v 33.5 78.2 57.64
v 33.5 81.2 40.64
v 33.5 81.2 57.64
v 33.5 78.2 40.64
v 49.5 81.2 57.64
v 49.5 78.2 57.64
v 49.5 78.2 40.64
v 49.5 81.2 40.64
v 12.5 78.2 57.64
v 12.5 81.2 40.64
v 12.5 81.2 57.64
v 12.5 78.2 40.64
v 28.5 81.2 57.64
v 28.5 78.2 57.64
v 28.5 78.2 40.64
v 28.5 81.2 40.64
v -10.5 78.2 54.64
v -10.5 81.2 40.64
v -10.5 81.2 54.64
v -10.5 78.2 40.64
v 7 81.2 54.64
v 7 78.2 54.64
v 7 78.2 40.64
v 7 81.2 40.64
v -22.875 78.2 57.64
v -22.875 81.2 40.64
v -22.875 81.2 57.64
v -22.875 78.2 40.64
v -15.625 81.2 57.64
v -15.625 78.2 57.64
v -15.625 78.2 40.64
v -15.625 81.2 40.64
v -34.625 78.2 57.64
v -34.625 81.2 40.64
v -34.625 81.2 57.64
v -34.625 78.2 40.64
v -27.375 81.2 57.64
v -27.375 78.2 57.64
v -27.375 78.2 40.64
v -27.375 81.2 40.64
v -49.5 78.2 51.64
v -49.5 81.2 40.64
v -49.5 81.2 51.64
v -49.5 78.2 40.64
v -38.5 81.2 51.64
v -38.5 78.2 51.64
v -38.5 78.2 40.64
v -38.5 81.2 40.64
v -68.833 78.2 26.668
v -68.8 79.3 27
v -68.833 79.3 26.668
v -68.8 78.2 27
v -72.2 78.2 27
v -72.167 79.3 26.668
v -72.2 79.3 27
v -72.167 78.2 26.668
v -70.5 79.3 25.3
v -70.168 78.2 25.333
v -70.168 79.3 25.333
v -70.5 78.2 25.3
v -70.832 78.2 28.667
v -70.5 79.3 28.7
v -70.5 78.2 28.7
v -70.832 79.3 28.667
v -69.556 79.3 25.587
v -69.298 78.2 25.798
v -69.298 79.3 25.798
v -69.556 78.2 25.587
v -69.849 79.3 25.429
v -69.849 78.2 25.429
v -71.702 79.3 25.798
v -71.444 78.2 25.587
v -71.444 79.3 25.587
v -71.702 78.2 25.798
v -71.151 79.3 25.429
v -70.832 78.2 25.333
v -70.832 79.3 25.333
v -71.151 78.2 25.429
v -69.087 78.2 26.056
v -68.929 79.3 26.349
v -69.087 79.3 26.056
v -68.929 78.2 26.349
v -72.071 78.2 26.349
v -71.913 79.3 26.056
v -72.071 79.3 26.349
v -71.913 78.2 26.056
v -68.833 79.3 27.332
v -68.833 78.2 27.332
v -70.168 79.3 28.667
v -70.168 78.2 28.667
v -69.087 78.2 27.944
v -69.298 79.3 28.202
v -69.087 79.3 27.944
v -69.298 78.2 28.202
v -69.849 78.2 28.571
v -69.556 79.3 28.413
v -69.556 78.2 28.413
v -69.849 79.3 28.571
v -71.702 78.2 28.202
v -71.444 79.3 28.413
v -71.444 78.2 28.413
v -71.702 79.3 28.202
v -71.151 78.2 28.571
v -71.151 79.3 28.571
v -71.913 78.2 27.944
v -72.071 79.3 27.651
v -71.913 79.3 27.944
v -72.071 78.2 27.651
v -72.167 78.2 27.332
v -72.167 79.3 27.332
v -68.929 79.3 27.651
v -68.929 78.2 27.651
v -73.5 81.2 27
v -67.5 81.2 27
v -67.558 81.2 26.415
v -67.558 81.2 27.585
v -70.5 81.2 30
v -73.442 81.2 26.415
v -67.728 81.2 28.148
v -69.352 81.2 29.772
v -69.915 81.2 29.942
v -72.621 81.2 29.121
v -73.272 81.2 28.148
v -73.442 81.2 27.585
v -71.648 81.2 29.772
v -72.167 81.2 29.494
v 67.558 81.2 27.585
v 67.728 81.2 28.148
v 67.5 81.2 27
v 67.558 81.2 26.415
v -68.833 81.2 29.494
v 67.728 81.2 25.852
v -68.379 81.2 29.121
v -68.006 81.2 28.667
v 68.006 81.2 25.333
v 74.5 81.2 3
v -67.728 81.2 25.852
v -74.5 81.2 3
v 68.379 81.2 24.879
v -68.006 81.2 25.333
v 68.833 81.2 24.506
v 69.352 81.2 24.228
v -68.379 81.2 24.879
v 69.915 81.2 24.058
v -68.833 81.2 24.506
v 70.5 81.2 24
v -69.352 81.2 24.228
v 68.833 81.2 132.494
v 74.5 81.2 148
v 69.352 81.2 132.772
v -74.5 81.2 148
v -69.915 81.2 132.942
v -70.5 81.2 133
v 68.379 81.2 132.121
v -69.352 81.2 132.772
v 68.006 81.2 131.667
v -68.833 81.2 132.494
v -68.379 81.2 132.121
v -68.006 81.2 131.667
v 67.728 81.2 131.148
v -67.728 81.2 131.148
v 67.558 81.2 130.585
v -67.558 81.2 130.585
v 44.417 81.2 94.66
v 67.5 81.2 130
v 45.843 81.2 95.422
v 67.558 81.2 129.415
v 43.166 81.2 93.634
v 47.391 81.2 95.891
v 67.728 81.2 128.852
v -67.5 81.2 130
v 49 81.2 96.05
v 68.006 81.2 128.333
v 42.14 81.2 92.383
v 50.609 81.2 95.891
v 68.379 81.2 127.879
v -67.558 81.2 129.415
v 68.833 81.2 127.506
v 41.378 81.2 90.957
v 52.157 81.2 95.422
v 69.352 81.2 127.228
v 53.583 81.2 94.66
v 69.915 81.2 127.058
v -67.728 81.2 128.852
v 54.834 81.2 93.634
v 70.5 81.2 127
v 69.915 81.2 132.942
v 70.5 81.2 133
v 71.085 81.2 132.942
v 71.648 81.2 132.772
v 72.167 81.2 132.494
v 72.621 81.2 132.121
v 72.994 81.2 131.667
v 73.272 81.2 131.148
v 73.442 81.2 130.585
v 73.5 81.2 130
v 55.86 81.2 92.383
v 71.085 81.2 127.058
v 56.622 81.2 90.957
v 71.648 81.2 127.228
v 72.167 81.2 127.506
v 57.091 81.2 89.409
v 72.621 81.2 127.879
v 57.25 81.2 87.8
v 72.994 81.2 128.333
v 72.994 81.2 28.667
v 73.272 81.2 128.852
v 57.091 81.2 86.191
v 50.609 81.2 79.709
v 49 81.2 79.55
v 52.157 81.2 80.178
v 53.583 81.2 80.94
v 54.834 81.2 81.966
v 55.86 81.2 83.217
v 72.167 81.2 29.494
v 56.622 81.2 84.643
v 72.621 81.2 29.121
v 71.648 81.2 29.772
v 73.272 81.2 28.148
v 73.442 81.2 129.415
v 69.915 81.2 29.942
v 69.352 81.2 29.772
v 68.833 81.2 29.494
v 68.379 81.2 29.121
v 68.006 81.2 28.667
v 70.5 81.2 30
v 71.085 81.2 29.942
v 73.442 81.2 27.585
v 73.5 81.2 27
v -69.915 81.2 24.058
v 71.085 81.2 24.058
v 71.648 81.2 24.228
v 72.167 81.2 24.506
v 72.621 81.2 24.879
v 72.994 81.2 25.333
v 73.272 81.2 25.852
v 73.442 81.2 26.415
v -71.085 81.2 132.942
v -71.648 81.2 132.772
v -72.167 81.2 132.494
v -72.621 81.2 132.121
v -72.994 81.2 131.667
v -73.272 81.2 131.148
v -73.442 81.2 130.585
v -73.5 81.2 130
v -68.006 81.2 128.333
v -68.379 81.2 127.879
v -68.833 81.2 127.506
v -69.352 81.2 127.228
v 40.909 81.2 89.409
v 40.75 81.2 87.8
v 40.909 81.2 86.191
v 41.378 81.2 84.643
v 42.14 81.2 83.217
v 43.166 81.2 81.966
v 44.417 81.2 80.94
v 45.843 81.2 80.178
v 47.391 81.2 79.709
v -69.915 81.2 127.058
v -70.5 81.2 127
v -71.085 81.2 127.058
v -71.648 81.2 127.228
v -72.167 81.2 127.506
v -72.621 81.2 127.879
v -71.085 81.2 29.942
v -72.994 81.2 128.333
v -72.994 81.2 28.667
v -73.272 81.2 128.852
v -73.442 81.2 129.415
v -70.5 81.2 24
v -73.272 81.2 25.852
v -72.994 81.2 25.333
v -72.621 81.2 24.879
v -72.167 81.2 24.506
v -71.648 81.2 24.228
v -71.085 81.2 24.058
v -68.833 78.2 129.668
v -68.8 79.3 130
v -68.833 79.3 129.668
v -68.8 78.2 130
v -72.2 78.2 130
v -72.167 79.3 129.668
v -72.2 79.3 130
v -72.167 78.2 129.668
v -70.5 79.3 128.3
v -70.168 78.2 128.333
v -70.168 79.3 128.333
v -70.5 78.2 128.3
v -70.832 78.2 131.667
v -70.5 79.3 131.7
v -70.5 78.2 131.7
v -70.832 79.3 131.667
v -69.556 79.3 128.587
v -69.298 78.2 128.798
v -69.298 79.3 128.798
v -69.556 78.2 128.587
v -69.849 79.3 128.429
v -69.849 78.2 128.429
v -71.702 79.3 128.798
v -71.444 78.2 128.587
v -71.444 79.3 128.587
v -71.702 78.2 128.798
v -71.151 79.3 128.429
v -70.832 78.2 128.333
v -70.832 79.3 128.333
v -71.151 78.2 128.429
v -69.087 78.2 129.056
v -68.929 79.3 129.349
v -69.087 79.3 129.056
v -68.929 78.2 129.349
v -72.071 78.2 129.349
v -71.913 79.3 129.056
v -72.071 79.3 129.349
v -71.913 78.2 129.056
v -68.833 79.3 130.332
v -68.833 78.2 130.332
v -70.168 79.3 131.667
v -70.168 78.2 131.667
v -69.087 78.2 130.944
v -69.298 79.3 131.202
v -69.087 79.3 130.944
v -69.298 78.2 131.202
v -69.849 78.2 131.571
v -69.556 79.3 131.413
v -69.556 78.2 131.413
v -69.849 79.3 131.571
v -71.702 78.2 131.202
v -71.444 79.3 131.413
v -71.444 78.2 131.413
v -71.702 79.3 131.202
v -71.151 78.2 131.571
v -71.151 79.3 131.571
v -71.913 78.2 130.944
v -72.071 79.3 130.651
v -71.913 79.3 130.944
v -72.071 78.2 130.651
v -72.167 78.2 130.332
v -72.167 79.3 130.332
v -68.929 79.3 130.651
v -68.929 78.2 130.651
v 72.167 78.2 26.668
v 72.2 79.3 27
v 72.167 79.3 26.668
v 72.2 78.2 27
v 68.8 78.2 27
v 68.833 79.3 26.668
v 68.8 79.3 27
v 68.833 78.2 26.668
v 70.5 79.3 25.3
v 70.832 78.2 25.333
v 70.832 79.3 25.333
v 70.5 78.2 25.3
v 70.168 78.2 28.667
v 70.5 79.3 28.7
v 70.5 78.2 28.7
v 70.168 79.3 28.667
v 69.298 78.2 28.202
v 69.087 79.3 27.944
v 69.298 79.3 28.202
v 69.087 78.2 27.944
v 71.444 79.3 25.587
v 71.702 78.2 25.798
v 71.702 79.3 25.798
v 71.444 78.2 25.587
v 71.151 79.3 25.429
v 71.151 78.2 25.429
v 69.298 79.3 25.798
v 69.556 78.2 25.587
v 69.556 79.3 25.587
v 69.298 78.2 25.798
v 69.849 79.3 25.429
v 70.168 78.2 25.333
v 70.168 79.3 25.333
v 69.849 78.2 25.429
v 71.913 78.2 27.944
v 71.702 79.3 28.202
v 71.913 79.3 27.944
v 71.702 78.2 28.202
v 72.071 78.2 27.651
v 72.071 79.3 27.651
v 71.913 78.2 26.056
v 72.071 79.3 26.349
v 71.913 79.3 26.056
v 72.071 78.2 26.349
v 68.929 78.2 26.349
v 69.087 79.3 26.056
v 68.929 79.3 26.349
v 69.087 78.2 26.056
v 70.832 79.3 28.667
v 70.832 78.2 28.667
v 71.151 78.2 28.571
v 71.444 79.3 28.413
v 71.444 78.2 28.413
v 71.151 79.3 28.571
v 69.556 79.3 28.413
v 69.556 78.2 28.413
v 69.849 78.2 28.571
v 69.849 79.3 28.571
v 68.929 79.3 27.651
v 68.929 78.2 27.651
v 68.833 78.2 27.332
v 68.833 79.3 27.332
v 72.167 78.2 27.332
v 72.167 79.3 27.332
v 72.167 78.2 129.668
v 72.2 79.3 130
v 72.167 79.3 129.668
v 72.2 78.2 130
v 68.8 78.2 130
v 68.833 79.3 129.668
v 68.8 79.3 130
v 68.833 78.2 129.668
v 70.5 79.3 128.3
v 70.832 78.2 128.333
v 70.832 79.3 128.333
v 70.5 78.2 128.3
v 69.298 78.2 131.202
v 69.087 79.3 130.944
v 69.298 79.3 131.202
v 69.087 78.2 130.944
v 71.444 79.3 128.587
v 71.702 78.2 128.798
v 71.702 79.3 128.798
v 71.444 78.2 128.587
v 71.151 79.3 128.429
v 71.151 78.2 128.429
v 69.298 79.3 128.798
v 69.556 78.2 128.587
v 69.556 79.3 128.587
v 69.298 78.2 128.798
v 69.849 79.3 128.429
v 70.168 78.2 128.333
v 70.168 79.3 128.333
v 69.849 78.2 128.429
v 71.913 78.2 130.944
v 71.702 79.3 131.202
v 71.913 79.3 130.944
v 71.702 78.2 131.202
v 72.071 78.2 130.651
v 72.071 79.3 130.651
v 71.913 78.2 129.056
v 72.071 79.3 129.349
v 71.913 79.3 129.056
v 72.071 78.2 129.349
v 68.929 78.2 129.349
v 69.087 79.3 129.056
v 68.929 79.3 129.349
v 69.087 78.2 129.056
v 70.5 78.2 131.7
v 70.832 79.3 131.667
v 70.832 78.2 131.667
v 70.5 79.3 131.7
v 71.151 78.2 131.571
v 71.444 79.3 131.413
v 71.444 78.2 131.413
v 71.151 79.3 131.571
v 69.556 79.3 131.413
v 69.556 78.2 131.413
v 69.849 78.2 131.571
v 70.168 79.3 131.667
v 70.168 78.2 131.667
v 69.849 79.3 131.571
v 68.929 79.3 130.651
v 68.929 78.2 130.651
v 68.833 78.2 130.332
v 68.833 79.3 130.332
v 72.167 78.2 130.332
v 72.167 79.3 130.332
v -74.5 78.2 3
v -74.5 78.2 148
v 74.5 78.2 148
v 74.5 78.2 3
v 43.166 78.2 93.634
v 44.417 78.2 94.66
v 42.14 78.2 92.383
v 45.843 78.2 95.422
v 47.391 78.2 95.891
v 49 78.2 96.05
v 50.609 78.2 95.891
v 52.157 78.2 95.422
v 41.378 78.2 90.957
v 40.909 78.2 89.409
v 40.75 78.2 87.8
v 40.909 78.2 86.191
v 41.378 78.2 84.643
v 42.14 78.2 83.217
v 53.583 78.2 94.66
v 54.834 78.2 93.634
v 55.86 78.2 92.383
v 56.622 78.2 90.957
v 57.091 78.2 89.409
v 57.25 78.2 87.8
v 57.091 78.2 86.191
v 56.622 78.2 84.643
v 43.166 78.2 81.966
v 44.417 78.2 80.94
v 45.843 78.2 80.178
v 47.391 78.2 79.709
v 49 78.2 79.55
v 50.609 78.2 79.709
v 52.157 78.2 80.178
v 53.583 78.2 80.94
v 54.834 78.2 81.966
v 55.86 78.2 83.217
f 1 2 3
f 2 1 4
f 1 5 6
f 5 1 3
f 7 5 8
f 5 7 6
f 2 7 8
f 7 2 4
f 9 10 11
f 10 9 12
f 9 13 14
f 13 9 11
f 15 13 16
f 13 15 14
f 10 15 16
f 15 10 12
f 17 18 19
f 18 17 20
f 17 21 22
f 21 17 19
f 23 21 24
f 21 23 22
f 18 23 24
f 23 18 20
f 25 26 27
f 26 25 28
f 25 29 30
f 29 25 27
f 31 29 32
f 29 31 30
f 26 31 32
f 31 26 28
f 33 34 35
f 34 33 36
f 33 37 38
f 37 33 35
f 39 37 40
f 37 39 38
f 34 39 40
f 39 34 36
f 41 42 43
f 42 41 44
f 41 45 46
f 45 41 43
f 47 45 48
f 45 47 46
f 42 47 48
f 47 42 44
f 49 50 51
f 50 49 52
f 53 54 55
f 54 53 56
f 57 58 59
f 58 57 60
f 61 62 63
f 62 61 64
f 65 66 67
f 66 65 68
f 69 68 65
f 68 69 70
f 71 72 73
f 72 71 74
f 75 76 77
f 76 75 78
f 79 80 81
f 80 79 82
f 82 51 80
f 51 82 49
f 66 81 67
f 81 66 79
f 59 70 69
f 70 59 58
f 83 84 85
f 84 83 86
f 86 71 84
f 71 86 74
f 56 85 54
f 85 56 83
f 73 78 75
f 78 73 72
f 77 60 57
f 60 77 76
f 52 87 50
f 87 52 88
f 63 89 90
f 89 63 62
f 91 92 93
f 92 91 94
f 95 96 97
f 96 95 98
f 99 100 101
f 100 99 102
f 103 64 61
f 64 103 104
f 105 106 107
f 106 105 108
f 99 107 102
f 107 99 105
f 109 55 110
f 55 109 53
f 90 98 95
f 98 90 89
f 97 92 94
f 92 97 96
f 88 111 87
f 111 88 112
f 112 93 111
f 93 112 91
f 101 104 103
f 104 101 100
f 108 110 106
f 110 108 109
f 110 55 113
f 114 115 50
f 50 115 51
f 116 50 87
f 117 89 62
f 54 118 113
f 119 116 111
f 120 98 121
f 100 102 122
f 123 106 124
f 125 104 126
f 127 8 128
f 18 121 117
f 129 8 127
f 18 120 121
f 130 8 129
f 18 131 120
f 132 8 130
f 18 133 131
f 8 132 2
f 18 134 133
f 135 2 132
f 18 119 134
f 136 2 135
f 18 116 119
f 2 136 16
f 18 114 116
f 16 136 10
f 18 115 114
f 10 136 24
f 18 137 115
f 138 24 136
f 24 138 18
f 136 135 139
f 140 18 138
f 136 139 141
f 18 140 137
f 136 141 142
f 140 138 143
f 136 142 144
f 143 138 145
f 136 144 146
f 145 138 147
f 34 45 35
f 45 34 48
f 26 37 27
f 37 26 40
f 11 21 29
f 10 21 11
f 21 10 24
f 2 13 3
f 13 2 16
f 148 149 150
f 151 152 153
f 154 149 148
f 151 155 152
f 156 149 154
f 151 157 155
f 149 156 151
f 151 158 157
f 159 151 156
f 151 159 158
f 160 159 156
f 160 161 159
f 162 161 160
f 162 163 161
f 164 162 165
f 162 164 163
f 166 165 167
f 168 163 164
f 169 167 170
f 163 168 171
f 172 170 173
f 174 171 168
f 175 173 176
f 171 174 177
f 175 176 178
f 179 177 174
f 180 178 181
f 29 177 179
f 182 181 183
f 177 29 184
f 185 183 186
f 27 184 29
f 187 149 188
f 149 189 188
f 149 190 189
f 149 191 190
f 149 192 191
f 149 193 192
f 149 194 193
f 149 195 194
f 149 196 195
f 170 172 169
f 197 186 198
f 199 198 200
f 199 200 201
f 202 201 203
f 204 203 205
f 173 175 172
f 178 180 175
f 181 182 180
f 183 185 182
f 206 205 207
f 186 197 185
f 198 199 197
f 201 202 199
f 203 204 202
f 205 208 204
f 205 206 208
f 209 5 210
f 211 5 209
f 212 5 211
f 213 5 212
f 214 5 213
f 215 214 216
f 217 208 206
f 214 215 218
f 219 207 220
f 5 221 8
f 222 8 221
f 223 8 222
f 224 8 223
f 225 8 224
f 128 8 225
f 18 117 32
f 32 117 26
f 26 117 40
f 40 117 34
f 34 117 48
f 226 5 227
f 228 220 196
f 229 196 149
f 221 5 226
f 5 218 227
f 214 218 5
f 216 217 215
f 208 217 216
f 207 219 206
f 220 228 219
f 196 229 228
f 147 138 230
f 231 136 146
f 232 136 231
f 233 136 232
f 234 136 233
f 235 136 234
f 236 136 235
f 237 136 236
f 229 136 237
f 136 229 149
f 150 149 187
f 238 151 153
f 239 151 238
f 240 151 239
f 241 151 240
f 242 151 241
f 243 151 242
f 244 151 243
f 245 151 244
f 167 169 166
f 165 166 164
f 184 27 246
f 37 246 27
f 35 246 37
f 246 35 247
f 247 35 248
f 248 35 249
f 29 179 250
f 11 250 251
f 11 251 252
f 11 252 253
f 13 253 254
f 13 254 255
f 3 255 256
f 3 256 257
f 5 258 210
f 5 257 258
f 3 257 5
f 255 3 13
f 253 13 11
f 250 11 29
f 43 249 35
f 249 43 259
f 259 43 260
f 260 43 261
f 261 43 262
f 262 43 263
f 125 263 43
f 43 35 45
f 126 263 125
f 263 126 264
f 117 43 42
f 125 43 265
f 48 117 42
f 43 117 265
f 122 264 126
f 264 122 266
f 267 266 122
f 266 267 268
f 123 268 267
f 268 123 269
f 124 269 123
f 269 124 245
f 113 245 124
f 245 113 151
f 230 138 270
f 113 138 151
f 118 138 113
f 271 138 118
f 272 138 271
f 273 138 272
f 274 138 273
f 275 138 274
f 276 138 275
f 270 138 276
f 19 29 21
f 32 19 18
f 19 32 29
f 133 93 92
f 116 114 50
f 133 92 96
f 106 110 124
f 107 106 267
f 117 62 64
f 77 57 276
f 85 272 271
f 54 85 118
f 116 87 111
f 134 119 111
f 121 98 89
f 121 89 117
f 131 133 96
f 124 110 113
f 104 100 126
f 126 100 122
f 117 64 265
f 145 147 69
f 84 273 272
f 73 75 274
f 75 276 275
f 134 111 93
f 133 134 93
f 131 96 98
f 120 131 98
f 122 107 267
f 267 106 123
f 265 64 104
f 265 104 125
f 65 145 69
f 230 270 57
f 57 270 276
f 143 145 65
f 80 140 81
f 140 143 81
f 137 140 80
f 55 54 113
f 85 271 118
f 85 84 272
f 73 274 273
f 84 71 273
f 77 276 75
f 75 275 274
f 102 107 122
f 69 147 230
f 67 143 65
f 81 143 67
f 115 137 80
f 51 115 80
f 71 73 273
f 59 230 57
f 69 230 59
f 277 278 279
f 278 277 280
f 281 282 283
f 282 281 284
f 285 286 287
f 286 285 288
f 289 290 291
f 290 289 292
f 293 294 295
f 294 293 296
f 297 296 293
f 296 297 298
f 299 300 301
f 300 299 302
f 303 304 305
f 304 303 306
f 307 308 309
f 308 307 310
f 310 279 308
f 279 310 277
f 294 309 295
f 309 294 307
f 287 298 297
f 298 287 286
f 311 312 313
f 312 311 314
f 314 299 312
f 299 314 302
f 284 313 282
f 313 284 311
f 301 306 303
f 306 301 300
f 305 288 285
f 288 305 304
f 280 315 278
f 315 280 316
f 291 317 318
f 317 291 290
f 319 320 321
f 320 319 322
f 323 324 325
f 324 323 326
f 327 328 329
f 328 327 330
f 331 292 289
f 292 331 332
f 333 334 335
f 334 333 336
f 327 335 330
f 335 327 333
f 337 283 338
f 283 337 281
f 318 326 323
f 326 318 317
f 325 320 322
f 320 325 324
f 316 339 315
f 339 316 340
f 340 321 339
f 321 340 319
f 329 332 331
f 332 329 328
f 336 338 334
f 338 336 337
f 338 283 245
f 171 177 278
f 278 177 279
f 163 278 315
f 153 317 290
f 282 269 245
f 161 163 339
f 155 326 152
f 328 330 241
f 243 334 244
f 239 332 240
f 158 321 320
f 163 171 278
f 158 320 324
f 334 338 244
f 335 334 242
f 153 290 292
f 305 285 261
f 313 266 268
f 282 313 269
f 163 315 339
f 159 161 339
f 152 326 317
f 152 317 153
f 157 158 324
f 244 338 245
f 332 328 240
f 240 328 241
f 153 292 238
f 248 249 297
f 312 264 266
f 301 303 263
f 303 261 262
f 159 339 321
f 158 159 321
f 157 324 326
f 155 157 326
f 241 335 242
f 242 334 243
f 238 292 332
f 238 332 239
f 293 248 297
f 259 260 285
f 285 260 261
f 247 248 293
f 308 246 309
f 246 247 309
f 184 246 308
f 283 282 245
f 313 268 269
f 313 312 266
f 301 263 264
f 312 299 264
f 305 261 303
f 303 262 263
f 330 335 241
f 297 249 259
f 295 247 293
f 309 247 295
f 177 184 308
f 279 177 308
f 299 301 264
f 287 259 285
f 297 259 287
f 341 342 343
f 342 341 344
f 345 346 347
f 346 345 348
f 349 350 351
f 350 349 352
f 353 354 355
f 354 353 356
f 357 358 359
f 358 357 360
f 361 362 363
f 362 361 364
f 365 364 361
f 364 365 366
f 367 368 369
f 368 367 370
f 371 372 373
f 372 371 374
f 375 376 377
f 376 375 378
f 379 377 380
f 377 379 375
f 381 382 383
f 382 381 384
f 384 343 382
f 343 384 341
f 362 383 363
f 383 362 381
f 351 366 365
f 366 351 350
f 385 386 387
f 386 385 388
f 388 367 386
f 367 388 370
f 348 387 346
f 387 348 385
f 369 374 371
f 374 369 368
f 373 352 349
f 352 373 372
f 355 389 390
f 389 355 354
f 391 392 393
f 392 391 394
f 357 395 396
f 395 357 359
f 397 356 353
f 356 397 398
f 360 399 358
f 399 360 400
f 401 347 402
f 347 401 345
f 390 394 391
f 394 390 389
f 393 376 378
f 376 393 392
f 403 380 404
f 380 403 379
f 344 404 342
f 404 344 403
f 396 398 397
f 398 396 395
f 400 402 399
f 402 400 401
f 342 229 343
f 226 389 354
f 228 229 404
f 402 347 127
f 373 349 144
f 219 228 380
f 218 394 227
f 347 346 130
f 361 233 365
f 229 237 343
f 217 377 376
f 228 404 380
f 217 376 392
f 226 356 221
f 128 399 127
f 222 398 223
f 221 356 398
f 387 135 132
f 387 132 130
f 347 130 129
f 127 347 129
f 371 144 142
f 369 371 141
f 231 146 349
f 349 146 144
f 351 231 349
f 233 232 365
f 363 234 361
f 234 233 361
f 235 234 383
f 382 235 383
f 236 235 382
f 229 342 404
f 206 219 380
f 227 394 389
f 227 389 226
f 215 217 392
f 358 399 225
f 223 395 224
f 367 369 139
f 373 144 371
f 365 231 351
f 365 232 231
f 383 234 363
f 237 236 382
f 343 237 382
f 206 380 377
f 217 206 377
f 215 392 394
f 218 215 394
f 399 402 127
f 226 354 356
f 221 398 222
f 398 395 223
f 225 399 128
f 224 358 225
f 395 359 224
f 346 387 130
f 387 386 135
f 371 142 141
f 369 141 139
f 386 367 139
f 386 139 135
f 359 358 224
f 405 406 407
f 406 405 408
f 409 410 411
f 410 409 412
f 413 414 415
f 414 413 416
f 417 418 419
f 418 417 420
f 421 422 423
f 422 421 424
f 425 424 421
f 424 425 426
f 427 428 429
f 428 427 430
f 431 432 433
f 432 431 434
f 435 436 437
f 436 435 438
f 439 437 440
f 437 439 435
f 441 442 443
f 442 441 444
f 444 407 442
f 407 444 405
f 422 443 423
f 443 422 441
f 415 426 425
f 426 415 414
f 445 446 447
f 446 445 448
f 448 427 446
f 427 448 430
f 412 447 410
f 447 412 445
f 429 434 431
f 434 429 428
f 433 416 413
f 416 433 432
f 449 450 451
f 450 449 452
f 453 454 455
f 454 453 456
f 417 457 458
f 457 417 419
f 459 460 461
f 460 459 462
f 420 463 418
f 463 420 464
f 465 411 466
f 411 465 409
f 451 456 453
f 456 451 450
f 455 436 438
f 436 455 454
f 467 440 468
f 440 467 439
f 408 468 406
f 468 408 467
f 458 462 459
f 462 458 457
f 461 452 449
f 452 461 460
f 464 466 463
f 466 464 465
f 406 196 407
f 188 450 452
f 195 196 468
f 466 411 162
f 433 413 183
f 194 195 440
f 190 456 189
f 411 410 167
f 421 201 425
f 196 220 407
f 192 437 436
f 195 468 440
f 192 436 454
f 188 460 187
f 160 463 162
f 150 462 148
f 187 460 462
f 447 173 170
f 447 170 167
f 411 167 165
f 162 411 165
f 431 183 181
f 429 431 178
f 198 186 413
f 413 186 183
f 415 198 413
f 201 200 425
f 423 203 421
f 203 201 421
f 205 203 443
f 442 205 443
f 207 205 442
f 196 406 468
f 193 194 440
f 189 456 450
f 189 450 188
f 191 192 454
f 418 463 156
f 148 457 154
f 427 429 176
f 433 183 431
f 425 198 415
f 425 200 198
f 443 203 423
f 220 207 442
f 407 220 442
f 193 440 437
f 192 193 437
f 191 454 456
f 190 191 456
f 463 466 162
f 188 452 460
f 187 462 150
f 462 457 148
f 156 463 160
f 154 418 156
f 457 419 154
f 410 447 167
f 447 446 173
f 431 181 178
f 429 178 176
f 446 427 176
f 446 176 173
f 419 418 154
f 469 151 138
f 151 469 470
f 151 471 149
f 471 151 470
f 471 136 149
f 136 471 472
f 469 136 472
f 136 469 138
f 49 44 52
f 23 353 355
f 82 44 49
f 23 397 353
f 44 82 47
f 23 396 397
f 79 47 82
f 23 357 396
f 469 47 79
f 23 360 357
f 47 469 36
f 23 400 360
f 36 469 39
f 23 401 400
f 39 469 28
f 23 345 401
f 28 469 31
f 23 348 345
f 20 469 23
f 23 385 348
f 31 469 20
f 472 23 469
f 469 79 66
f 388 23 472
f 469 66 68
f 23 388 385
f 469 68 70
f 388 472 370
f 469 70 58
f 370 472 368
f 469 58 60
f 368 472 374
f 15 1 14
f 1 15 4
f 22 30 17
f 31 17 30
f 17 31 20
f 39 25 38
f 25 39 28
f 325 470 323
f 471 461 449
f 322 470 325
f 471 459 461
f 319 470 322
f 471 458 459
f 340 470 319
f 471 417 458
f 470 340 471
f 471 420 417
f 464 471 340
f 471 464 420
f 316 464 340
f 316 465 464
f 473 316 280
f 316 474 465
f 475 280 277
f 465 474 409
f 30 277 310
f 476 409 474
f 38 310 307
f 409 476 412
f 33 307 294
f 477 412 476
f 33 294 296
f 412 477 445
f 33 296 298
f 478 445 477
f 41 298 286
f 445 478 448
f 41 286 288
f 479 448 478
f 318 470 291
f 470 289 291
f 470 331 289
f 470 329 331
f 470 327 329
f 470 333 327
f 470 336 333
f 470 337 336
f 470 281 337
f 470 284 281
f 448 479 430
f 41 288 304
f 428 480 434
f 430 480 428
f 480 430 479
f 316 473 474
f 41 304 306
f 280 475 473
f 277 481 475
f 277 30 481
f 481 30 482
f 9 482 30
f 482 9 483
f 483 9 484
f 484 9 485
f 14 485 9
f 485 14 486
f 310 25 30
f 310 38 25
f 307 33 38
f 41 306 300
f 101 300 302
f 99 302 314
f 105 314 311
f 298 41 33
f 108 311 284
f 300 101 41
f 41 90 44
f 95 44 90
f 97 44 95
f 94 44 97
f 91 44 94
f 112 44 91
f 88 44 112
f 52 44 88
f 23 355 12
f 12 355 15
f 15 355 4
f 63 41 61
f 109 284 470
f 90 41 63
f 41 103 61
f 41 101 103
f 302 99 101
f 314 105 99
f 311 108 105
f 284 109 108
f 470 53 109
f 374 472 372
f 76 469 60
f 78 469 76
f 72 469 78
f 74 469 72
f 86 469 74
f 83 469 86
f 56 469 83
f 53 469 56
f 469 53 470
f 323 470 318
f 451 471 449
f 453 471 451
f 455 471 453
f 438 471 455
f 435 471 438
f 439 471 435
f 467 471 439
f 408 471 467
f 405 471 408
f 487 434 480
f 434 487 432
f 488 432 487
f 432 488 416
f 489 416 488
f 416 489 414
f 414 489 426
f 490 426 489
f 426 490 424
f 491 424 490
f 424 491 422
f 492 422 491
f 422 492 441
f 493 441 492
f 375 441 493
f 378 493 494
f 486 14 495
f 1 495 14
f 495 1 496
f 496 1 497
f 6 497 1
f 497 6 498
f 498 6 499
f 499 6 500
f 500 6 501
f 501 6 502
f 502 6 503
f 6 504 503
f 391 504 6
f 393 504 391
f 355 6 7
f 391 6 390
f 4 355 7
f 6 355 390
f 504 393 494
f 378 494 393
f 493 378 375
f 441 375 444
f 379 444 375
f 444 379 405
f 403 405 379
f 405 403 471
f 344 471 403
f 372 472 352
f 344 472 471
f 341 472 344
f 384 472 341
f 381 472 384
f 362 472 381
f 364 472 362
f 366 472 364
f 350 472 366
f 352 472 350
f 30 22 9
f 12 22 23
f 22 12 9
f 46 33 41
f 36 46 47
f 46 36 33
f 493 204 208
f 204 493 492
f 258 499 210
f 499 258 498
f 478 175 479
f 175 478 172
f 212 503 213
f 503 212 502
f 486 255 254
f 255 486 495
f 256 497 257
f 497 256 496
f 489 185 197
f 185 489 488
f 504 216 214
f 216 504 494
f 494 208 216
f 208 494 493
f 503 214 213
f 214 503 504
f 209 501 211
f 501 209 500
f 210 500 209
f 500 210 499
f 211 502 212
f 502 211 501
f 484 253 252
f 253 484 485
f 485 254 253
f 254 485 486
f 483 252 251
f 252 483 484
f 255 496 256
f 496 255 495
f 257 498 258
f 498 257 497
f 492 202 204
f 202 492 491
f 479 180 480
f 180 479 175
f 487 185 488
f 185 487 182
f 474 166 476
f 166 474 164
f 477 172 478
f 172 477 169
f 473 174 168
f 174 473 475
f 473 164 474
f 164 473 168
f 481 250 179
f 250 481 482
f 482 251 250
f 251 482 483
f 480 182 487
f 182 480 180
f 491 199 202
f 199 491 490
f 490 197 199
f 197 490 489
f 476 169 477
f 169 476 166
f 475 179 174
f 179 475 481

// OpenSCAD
//
// ============================================================================
// SteamMachine UM790
// Project Phoenix
//
// Archivo  : rear_panel.scad
// Versión  : 1.0
// Fecha    : 2026-08-03
// Autor    : Pep Ventura (asistido por Claude)
//
// Panel trasero — va UNIDO A LA BANDEJA, no al chasis fijo
// (docs/DESIGN_RULES.md: "El panel trasero irá unido a la bandeja.
// Al extraer la bandeja saldrá también el panel trasero.").
//
// Incluye el recorte de acceso a la IO trasera del UM790
// (conectores: RJ45/USB/alimentación), en la posición ya validada en
// el ensamblaje virtual (um790_pos, um790_rearIO_*, ver
// openscad/reference/components/assembly_positions.scad y um790.scad).
//
// Sistema de coordenadas: igual que
// openscad/reference/components/assembly_positions.scad — origen
// centrado en X/Y, Z=0 en la cara inferior exterior del chasis.
//
// ============================================================================

include <../../../00_parametros.scad>;
include <../../reference/components/assembly_positions.scad>;

$fn = 32;

part_version = "1.0";


//=============================================================================
// MARGEN DE RECORTE DE LA IO TRASERA
//=============================================================================

rear_io_cut_margin = 0.5;  // holgura alrededor de cada conector — reducido de 1mm: con la disposición real del plano, el hueco natural más ajustado (RJ45-USB, 1,75mm) se fusionaba incluso con 1mm de margen. Con 0,5mm queda un separador real de ~0,75mm en el punto más justo.


//=============================================================================
// PLACA MACIZA
//=============================================================================

// AJUSTADO (2026-08-16, mismo criterio que nfc_panel_width y
// lower_panel_width_oversize, confirmado con probeta real): el
// hueco interior real del chasis mide 149mm, no 150mm — mismo
// ajuste aplicado aquí para que los tres paneles frontales/trasero
// coincidan. rear_panel_width definido en 00_parametros.scad (no
// aquí) para que probeta_panel_trasero.scad pueda reutilizar el
// mismo valor sin depender de un `use` a este archivo (las
// variables no se exponen con `use`, solo los módulos).

module rearPanelSolid()
{

    // FALLO CORREGIDO (2026-08-03): el panel arrancaba en Z=0, el
    // mismo espacio que ya ocupa el suelo del chasis fijo (floor.scad)
    // en su borde trasero — colisión real entre dos piezas distintas.
    // Ahora arranca en bottom_thickness, apoyado ENCIMA del suelo, no
    // dentro de él.
    //
    // FALLO CORREGIDO (2026-08-03): el ancho (case_width = 156 mm)
    // solapaba el propio grosor de las paredes laterales (que ocupan
    // X desde ±75 hasta ±78) — colisión real de volumen, no un simple
    // contacto. El panel debe encajar ENTRE las paredes, no
    // solaparlas: ancho corregido a case_width - 2*wall_thickness
    // (150 mm), igual que la bandeja (tray_width) y el panel NFC
    // (nfc_panel_width).
    translate([
        -rear_panel_width/2,
        case_depth/2 - wall_thickness,
        bottom_thickness
    ])

        cube([rear_panel_width, wall_thickness, shell_height-bottom_thickness]);

}


//=============================================================================
// RECORTE DE LA IO TRASERA DEL UM790
//
// Posición derivada de um790_pos (assembly_positions.scad) y de las
// dimensiones del bloque de IO trasera definidas en um790.scad
// (um790_rearIO_width/height, 00_parametros.scad), con un margen para
// que los conectores sean accesibles sin rozar el borde impreso.
//=============================================================================

//=============================================================================
// RECORTES INDIVIDUALES DE CADA CONECTOR DE LA IO TRASERA DEL UM790
//
// PEDIDO POR EL USUARIO (2026-08-03): cada conector con su propio
// recorte, delimitado a su tamaño real (no un hueco genérico).
//
// ACTUALIZADO (2026-08-03, foto real con regla aportada por el
// usuario: "el panel trasero no se adapta a la realidad") — el
// "plano de distribución" de texto usado antes tenía un orden y
// agrupación que NO coinciden con la placa real. Sustituido por la
// disposición que se ve directamente en la foto:
//
//   Orden real, de izquierda a derecha (vista desde atrás, mirando
//   los conectores de frente): USB×2 (apilados verticalmente) |
//   USB×2 (apilados verticalmente) | RJ45 | HDMI | HDMI (uno junto
//   al otro, NO apilados) | conector de alimentación DC.
//
// Esto corrige dos fallos de la versión anterior (basada en el plano
// de texto, que resultó no coincidir): el orden estaba invertido
// (DC-HDMI-RJ45-USB en vez de USB-RJ45-HDMI-DC) y los HDMI estaban
// apilados verticalmente en vez de uno al lado del otro.
//
// Ancho total: estimado con la regla visible en la foto (~108mm) —
// coincide razonablemente con la suma de los tamaños estándar de
// cada conector más separaciones (~102mm), así que la escala es
// creíble. La posición exacta de cada uno dentro de esa fila es una
// distribución uniforme según lo que se aprecia en la foto, no una
// medida milimétrica exacta — pendiente de confirmar si hay forma de
// medirlo con más precisión.
//=============================================================================

// PEDIDO POR EL USUARIO (2026-08-16): "te adjunto el fichero que ya
// he convertido en DXF" — dibujo real a escala en AutoCAD (unidades
// del archivo: centímetros, INSUNITS=5, confirmado antes de usar los
// datos) con las medidas exactas de cada conector trasero. Sustituye
// por completo las estimaciones anteriores basadas en la foto (orden
// USB-USB-RJ45-HDMI-HDMI-DC, y la orientación vertical del HDMI, ya
// acertadas — ahora con medidas precisas en vez de estimadas).
//
// Cada USB apilado es UN ÚNICO recorte rectangular (15x16mm) que
// cubre los dos puertos como una sola abertura — así viene dibujado
// en el CAD, no como dos huecos individuales con separación estimada
// (rear_usb_stack_pitch, ya no se usa).
//
// Referencia Y del CAD verificada contra el proyecto: coincide con
// z_pcb_bottom + Z, casi exacta (0,36mm de diferencia) con el valor
// que ya se usaba antes por estimación — se usan los valores medidos
// directamente, sin necesidad de reajustar el origen.

rear_dc_jack_diameter = 10.0;   // Medido en CAD — 10x10mm CUADRADO (ver nota de corrección abajo)
rear_hdmi_width  = 6.25; rear_hdmi_height = 16.0;  // Medido en CAD (promedio de los dos HDMI: 6,5 y 6,0mm de ancho; antes 6x15, estimado)
rear_rj45_width  = 16.5; rear_rj45_height = 13.0;  // Medido en CAD (antes 16x13.5, estimado — casi igual)
rear_usb_width   = 15.0; rear_usb_height  = 16.0;  // Medido en CAD — recorte único por pareja apilada, no un puerto individual (antes 13x6, estimado, para un solo puerto)
rear_io_center_z = 11.14;  // Medido en CAD (Z = z_pcb_bottom + esto = 49,14, la Z real de USB/HDMI; antes 11.5, estimado)

module rearIOCut()
{

    // [x relativo al centro del grupo (medido en CAD, ya con el
    // espejo trasero->delantero aplicado), ancho, alto, Z propia
    // (si difiere de la Z común), es_redondo]
    connectors = [
        [-41.50, rear_usb_width,       rear_usb_height,       z_pcb_bottom+rear_io_center_z, false],  // USB pareja 1 (recorte único)
        [-20.50, rear_usb_width,       rear_usb_height,       z_pcb_bottom+rear_io_center_z, false],  // USB pareja 2 (recorte único)
        [  1.75, rear_rj45_width,      rear_rj45_height,      z_pcb_bottom+9.64,             false],  // RJ45 — Z propia, medida 1,5mm más baja que USB/HDMI
        [ 19.25, rear_hdmi_width,      rear_hdmi_height,      z_pcb_bottom+rear_io_center_z, false],  // HDMI 1
        [ 31.00, rear_hdmi_width,      rear_hdmi_height,      z_pcb_bottom+rear_io_center_z, false],  // HDMI 2
        // FALLO CORREGIDO (2026-08-16, aviso del usuario): "el
        // conector de alimentación te lo he dibujado cuadrado en el
        // fichero DXF y tú lo has hecho redondo" — el DXF ya lo decía
        // (4 puntos, igual que todos los rectángulos, no una
        // aproximación poligonal de un círculo como las letras) pero
        // lo interpreté mal, asumiendo "conector DC = redondo" por
        // costumbre en vez de fiarme del dato real. Corregido a
        // cuadrado (es_redondo=false).
        [ 44.00, rear_dc_jack_diameter,rear_dc_jack_diameter, z_pcb_bottom+8.14,             false],   // DC — CUADRADO, no redondo — Z propia, medida 3mm más baja que USB/HDMI
    ];

    cutY = case_depth/2 - wall_thickness - 1;
    cutDepth = wall_thickness + 2;

    module cutOne(cX, cZ, cWidth, cHeight, cRound)
    {
        translate([cX, cutY, cZ])
        {
            if (cRound)
            {
                rotate([-90,0,0])
                    cylinder(d = cWidth + 2*rear_io_cut_margin, h = cutDepth, center=false);
            }
            else
            {
                translate([-(cWidth+2*rear_io_cut_margin)/2, 0, -(cHeight+2*rear_io_cut_margin)/2])
                    cube([cWidth+2*rear_io_cut_margin, cutDepth, cHeight+2*rear_io_cut_margin]);
            }
        }
    }

    for(i = [0:len(connectors)-1])
    {

        // Espejo: el CAD muestra la vista desde ATRÁS (mirando los
        // conectores de frente) — este proyecto usa la vista desde
        // DELANTE, así que X se invierte.
        cX      = -connectors[i][0];
        cWidth  = connectors[i][1];
        cHeight = connectors[i][2];
        cZ      = connectors[i][3];
        cRound  = connectors[i][4];

        cutOne(cX, cZ, cWidth, cHeight, cRound);

    }

}


//=============================================================================
// LENGÜETA DE UNIÓN CON LA BANDEJA — ELIMINADA
//
// PEDIDO POR EL USUARIO (2026-08-17, marcado en una captura):
// "sobran estos soportes, no son necesarios" — el panel trasero
// queda sujeto solo por los tornillos a las paredes laterales
// (rearWallScrewHoles(), M3, ya verificados). Eliminados
// rearBridgeTab(), rearBridgeTabs() y rearBridgeScrewHoles().
//
// PENDIENTE DE REVISAR POR EL USUARIO: la bandeja
// (openscad/parts/01_bandeja/base.scad) todavía tiene los insertos
// correspondientes (trayRearBridgeInserts(), trayRearBridgeInsertPads())
// — no se han tocado, no se pidieron explícitamente, pero ahora no
// tienen ningún tornillo real que rosque en ellos. No afecta a la
// integridad de la bandeja (siguen siendo material sólido de apoyo),
// pero si se quiere limpiar del todo, avisar para quitarlos también.
//=============================================================================


//=============================================================================
// TALADROS DE PASO PARA LA FIJACIÓN A LAS PAREDES LATERALES
//
// RETIRADO (2026-08-03): esta fijación adicional (pared ↔ panel
// trasero) colisionaba con el relleno local de la pared
// (side_boss_size = 14 mm de lado, mucho más ancho que el grosor del
// propio panel) — el material del panel alrededor del taladro de
// paso invadía el relleno. Requiere una muesca de alivio en el panel
// para resolverse bien; se deja pendiente para una futura revisión.
// El panel trasero sigue fijado a la bandeja (rearBridgeTabs/
// rearBridgeScrewHoles), ya verificado sin colisión.
//=============================================================================


//=============================================================================
// HUECO DEL PULSADOR TRASERO (encendido/apagado del UM790)
//
// Mismo criterio que pushbuttonCut() en lower_panel.scad (panel
// frontal): un pasante del diámetro de la rosca del pulsador
// (pushbutton_thread_diameter), a través de todo el grosor del panel.
// Aquí no hay marco/bisel que atravesar (rearPanelSolid() es una
// placa plana de wall_thickness), así que basta ese grosor + margen.
//
// Posición y verificación de colisiones: ver rear_pushbutton_pos en
// assembly_positions.scad — comprobado sin colisión contra los 6
// componentes del ensamblaje (UM790, ESP32, HUB, ventilador —cuerpo
// y volumen de seguridad de flujo de aire—, RC522 y el pulsador
// frontal) exportando a STL con OpenSCAD real, no solo a ojo.
//=============================================================================

module rearPushbuttonCut()
{

    translate([rear_pushbutton_pos[0], case_depth/2 - wall_thickness - 1, rear_pushbutton_pos[2]])
        rotate([-90,0,0])
            cylinder(d = pushbutton_thread_diameter, h = wall_thickness + 2);

}


//=============================================================================
// PANEL TRASERO COMPLETO
//=============================================================================

module rearPanel()
{

    difference()
    {

        rearPanelSolid();

        rearIOCut();

        rearPushbuttonCut();

        rearWallScrewHoles();

    }

}


//=============================================================================
// TORNILLOS DE FIJACIÓN A LAS PAREDES LATERALES — AGUJERO AVELLANADO
//
// Deben coincidir en X con sideMountGlobalX() y en Z con
// rear_wall_screw_z_low/high (openscad/parts/02_chassis/walls.scad,
// rearWallScrewCuts() — misma fuente, assembly_positions.scad).
//
// FALLO CORREGIDO (2026-08-03, dos rondas de aviso del usuario): la
// primera versión dejaba una muesca cuadrada visible; la segunda
// intentaba taparla con un saliente redondo hacia fuera, pero el
// usuario avisó de que un bulto tampoco vale. Solución acordada: el
// inserto de la pared se reculó 3 mm hacia dentro (walls.scad,
// rearWallScrewCuts()) — con eso, el avellanado cabe DENTRO del
// grosor normal del panel, sin ningún saliente.
//=============================================================================

rear_csk_diameter = rear_csk_radius*2;  // 6.0mm, avellanado M3 (radio compartido con walls.scad)
rear_csk_depth    = 1.8;  // dentro de los 3mm del panel

module rearWallScrewHoles()
{

    // FALLO CORREGIDO (2026-08-03, opción 3 elegida por el usuario):
    // mismo criterio que lowerPanelScrewHoles() — panelMountX() en
    // vez de sideMountGlobalX(), misma fórmula que walls.scad
    // (rearWallScrewCuts()), para que coincidan.
    screwX = panelMountX(rear_csk_radius);

    for(ix=[-1,1])
    for(z=[rear_wall_screw_z_low, rear_wall_screw_z_high])
    {

        // Taladro de paso, todo el grosor del panel
        translate([
            ix*screwX,
            case_depth/2 - wall_thickness - 1,
            z
        ])
            rotate([-90,0,0])
                cylinder(d = 3.4, h = wall_thickness+2);

        // Avellanado cónico, recesado en la cara exterior (no
        // atraviesa el panel: cabe en 1,8 de los 3 mm de grosor)
        translate([
            ix*screwX,
            case_depth/2 - rear_csk_depth - 0.1,
            z
        ])
            rotate([-90,0,0])
                cylinder(d1 = 3.4, d2 = rear_csk_diameter, h = rear_csk_depth+0.1);

    }

}


//=============================================================================
// PREVIEW
//=============================================================================

color("Gainsboro")
    rearPanel();
